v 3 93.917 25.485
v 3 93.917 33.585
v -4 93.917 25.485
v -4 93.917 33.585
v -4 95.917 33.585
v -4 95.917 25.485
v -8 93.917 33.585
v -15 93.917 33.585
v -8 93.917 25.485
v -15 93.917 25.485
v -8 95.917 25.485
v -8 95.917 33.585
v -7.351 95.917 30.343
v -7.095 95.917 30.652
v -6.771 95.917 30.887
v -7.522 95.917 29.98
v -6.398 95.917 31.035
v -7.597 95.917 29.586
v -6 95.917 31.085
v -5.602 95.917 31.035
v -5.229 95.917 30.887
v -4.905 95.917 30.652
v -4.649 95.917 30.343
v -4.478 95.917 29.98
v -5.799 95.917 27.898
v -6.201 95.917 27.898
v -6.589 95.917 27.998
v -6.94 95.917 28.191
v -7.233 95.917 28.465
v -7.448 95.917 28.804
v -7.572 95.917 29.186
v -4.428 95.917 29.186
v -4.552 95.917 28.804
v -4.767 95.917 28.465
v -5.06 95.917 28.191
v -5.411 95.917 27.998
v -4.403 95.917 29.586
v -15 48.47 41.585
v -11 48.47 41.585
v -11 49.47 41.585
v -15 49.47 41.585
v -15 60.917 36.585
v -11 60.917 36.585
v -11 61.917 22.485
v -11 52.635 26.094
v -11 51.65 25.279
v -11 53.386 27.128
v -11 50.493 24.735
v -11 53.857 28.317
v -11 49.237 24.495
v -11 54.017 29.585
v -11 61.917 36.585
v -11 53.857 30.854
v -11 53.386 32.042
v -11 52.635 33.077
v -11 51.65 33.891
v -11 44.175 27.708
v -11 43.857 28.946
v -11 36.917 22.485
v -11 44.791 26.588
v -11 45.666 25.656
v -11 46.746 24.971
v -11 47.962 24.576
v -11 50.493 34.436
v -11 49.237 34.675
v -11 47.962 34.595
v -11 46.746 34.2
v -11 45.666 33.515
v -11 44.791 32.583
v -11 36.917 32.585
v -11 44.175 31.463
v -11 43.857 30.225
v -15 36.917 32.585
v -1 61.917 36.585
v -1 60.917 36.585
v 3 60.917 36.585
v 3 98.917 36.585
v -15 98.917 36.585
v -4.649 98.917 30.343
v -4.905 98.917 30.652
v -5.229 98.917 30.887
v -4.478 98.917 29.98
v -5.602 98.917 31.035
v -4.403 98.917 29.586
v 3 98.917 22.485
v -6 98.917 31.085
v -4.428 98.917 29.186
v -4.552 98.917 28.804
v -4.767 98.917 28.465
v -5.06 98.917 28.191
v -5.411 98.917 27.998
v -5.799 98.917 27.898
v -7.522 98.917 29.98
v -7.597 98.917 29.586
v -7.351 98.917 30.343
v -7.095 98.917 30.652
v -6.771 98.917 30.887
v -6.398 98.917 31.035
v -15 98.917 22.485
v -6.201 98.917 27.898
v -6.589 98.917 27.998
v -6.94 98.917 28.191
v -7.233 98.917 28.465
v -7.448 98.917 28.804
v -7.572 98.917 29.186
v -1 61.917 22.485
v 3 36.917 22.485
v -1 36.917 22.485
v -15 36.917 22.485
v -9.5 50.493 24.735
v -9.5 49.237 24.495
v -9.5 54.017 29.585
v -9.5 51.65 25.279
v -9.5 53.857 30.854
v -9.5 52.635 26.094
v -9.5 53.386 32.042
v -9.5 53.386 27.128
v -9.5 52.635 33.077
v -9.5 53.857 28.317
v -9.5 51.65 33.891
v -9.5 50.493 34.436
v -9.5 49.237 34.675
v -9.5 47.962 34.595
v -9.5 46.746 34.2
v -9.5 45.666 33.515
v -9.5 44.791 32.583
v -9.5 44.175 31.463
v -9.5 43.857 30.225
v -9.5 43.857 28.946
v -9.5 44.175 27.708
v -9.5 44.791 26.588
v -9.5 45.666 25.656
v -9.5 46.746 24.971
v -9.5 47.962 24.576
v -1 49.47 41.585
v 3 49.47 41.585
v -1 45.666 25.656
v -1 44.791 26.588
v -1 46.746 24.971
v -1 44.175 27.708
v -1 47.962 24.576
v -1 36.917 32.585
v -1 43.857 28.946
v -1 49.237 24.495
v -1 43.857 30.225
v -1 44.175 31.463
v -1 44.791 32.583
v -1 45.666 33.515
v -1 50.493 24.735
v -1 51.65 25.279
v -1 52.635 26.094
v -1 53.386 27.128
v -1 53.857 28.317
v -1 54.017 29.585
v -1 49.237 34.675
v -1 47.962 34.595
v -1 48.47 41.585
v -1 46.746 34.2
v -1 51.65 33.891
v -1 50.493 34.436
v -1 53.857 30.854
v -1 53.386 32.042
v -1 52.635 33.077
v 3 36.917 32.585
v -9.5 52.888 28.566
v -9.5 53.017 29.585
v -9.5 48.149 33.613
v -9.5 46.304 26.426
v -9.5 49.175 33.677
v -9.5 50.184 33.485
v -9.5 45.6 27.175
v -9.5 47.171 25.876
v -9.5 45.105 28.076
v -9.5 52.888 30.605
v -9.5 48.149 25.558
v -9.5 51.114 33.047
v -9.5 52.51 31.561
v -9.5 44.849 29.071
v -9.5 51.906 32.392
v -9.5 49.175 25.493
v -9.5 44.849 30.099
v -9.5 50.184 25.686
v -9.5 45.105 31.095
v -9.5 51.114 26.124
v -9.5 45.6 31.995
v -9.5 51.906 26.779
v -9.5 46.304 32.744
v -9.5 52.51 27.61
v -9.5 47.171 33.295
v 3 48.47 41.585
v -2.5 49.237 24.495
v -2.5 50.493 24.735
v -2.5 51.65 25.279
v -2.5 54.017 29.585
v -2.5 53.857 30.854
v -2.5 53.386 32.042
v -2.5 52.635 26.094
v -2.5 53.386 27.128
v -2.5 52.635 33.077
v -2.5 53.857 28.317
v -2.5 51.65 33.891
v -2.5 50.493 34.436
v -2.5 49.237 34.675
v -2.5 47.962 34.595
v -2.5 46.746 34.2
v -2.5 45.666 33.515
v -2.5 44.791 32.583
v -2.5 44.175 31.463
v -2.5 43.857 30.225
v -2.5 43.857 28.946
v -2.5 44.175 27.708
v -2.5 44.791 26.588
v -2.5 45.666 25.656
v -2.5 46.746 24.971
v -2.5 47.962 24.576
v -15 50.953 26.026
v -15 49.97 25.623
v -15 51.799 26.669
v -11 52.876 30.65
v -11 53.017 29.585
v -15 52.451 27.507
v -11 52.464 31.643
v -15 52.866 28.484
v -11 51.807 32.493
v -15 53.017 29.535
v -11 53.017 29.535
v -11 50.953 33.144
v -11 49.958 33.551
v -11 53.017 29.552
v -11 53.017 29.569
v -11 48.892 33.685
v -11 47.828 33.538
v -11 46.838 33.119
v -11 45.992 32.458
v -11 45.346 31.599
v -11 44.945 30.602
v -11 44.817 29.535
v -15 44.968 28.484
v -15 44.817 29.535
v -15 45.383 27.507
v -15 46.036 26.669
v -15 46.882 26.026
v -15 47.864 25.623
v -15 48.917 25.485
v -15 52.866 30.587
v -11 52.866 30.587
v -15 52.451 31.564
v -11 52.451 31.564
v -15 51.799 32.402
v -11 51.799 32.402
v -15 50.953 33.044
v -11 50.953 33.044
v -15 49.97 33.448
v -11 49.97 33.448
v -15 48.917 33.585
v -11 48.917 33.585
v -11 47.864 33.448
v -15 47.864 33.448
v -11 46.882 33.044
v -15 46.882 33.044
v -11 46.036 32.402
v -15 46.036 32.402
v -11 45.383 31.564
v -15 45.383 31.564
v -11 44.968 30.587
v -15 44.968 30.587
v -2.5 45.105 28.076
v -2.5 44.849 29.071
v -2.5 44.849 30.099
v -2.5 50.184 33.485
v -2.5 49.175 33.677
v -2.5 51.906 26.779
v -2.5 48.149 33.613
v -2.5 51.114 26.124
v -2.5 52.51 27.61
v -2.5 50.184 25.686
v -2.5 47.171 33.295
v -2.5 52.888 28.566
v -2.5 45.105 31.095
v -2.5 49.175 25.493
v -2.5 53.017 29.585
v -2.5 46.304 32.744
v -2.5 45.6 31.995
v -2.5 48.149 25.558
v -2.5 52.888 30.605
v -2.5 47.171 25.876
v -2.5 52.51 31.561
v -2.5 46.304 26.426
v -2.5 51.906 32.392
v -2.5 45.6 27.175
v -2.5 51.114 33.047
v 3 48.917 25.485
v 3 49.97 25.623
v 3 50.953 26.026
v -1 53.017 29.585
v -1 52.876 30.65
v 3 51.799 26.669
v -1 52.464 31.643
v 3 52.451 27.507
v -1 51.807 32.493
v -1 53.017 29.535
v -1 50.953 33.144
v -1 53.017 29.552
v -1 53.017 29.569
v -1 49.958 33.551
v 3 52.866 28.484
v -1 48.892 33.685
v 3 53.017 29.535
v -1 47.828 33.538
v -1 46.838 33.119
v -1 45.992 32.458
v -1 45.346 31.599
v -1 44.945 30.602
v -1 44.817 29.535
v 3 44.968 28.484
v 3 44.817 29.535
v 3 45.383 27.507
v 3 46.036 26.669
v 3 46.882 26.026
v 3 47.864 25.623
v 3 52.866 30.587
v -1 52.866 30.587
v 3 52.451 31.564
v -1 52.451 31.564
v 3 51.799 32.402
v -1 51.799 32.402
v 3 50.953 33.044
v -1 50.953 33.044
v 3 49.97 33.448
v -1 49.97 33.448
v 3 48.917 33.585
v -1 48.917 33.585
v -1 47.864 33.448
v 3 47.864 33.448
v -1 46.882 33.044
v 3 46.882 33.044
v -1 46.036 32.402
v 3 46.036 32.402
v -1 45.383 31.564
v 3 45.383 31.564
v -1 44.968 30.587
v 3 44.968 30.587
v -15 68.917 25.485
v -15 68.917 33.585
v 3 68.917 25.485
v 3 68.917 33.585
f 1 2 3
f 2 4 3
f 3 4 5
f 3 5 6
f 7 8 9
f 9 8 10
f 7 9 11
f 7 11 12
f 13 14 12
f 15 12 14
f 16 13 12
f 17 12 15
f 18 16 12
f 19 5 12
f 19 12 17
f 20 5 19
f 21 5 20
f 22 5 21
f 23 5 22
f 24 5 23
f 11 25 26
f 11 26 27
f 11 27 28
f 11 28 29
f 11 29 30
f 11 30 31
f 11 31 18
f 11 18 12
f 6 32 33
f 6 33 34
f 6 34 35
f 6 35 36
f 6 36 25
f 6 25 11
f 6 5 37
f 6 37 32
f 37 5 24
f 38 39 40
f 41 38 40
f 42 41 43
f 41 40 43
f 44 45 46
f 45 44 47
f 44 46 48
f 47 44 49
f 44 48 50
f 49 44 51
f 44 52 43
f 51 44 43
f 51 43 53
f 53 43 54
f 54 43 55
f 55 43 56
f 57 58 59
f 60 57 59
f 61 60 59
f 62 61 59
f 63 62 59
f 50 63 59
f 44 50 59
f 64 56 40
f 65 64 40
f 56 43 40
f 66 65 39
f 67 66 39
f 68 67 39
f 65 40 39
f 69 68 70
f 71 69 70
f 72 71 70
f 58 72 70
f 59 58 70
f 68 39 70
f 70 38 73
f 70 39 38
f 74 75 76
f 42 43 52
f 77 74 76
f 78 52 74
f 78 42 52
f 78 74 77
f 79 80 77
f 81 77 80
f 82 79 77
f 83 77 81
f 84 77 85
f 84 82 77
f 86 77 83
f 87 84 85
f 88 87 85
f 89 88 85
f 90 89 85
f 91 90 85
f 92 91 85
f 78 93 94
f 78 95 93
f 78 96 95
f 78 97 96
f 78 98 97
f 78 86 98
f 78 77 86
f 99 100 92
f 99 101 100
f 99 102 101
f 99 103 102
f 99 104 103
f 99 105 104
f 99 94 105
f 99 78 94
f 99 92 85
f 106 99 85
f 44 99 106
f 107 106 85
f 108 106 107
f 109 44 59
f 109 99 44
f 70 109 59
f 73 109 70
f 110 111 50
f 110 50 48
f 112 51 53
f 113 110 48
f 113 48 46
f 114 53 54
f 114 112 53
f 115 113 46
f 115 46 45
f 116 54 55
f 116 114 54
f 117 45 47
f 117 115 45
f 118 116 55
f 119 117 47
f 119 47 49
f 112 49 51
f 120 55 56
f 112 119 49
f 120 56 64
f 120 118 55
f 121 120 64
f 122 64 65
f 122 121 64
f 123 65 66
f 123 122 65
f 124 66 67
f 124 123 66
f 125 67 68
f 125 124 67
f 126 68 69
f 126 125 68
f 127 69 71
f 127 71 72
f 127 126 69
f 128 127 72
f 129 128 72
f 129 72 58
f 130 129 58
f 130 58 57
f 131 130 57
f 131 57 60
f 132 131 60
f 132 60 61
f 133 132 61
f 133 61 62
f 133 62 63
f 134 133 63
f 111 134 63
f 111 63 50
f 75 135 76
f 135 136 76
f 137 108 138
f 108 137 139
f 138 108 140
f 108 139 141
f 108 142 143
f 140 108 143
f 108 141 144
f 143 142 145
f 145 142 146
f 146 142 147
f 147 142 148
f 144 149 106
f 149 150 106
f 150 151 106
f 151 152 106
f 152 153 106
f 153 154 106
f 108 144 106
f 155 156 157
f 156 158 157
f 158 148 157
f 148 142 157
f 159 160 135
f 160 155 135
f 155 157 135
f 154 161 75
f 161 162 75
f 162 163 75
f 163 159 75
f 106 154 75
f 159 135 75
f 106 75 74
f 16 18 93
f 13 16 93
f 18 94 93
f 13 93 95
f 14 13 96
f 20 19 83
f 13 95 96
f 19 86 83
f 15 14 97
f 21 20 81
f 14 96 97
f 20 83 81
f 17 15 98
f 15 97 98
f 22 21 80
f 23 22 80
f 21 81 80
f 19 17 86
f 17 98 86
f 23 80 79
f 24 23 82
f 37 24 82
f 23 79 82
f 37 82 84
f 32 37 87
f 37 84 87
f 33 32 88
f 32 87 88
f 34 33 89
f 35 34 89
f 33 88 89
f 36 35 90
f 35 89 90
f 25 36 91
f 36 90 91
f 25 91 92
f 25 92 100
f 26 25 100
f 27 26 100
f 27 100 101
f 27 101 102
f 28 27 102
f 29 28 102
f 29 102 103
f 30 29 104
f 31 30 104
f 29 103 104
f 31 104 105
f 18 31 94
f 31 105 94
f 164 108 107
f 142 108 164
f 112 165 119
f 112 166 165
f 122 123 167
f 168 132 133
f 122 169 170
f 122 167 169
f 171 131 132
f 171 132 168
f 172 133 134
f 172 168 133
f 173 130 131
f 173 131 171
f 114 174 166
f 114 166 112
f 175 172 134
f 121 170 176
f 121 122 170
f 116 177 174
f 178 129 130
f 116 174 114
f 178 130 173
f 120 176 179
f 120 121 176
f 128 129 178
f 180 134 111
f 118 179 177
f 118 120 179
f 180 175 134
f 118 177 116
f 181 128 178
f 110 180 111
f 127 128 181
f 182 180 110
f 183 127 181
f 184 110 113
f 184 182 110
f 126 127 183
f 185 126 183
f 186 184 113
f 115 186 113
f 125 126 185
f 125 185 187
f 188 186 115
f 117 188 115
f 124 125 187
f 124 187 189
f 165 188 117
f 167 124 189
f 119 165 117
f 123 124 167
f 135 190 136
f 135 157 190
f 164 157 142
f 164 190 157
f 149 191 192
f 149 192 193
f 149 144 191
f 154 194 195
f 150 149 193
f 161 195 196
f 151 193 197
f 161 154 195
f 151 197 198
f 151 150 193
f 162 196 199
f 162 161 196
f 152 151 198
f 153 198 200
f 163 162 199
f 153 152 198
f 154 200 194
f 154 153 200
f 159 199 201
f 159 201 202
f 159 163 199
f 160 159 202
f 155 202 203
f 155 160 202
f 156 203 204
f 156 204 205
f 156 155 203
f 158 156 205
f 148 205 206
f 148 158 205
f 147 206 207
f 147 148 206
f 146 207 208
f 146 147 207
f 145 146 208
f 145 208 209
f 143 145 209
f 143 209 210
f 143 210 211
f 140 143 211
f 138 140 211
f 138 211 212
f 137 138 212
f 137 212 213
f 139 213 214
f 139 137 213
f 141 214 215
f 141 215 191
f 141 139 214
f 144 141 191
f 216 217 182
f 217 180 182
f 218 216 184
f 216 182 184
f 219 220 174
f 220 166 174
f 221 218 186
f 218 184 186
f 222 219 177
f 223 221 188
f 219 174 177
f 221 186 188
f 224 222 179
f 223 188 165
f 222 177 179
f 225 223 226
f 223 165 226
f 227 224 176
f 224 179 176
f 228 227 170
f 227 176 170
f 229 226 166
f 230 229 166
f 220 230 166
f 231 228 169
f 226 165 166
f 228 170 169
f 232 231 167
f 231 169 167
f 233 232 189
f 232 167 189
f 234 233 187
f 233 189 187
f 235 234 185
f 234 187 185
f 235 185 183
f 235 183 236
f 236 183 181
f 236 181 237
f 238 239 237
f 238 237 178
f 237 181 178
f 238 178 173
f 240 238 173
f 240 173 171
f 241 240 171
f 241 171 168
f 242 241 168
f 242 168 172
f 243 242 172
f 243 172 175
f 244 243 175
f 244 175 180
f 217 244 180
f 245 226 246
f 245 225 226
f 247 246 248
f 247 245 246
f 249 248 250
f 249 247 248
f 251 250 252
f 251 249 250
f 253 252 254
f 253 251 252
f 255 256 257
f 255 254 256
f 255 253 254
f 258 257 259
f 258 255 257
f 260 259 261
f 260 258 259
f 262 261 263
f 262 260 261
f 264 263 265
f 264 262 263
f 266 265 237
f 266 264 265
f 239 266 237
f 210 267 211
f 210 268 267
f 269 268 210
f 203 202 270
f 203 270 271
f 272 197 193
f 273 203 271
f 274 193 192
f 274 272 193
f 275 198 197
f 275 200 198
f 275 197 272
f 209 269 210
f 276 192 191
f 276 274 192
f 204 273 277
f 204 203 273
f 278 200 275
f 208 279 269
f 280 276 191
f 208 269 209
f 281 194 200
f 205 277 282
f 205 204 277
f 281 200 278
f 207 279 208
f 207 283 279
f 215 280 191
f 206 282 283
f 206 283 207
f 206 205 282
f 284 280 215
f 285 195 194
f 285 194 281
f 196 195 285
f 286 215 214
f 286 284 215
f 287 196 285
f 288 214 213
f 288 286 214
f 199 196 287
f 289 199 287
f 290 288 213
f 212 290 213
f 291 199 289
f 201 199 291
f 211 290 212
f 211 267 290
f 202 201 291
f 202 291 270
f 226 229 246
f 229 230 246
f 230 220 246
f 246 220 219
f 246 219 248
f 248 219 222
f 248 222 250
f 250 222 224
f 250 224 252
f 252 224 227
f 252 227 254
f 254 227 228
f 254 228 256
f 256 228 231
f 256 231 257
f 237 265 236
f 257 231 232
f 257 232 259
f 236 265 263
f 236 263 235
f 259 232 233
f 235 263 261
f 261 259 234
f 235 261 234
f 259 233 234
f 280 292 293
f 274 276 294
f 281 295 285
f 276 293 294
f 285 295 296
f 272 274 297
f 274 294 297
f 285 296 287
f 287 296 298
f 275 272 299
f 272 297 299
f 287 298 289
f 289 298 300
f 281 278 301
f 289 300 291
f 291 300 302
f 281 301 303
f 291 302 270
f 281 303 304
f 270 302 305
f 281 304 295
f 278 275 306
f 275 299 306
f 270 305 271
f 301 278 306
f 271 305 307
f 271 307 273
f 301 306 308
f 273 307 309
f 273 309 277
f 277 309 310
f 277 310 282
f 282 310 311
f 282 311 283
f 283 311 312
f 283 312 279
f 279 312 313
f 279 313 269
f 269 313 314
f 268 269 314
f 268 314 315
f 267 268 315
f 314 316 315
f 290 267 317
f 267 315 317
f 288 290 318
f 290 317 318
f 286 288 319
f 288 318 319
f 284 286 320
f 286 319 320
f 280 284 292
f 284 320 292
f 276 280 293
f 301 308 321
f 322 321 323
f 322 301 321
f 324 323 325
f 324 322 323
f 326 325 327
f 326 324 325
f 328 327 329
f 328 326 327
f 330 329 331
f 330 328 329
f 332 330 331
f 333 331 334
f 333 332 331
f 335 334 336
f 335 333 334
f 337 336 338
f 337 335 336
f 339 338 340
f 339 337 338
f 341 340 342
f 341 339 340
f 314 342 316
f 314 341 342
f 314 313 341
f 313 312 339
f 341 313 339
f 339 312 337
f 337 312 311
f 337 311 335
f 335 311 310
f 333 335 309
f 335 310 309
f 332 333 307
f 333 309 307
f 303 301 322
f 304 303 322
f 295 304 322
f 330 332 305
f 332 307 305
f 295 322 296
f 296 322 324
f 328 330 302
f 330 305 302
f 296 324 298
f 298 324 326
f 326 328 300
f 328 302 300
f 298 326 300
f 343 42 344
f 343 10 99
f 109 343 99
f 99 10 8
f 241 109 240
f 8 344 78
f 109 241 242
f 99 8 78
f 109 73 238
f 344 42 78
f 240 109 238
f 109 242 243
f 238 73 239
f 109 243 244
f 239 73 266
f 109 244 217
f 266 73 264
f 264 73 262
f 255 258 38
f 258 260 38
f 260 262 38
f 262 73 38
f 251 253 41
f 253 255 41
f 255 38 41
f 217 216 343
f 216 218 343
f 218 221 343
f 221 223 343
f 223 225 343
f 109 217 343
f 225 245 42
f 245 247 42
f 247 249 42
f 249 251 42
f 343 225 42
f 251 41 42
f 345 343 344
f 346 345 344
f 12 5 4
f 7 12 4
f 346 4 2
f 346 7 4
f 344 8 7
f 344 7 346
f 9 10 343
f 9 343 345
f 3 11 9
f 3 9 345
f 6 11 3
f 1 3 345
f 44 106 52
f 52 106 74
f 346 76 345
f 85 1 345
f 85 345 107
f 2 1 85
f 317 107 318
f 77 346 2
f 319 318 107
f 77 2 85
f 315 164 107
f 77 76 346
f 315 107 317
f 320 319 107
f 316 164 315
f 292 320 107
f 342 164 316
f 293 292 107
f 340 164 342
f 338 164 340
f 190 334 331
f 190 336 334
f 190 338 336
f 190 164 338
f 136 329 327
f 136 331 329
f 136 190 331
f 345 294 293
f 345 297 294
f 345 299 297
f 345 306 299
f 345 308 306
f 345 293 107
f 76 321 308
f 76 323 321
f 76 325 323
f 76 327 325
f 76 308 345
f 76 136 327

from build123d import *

# Parameters (mm, degrees)
SKETCH_R        = 4.1
SKETCH_W        = 25
SKETCH_H        = 8.1
PAD_DEPTH       = 18
SKETCH001_W     = 25
SKETCH001_H     = 10
POCKET_DEPTH    = 25
SKETCH002_R     = 5.1
SKETCH002_R_2   = 4.1
PAD001_DEPTH    = 18
SKETCH003_W     = 24
SKETCH003_H     = 7
POCKET001_DEPTH = 25
SKETCH004_R     = 1.6
POCKET002_DEPTH = 5
SKETCH005_W     = 8.1
SKETCH005_H     = 4
POCKET003_DEPTH = 2
POCKET004_DEPTH = 25


with BuildPart() as part:
    # Sketch → Pad (new body)
    with BuildSketch(Plane(origin=(-15, 105, 17), x_dir=(0, 1, 0), z_dir=(1, 0, 0))):
        Polygon((-68.082832, 24.585315), (-44.082832, 24.585315), (-44.082832, 19.585315), (-6.082832, 19.585315), (-6.082832, 5.485315), (-68.082832, 5.485315), align=None)
        with Locations((-56.082832, 12.485315)):
            Circle(SKETCH_R, mode=Mode.SUBTRACT)
        with Locations((-23.582832, 12.535315)):
            Rectangle(SKETCH_W, SKETCH_H, mode=Mode.SUBTRACT)
    extrude(amount=PAD_DEPTH)

    # Sketch001 → Pocket (cut)
    with BuildSketch(Plane(origin=(-15, 105, 41.585315), x_dir=(0, -1, 0), z_dir=(0, 0, 1))):
        with Locations((55.582832, 9)):
            Rectangle(SKETCH001_W, SKETCH001_H)
    extrude(amount=-POCKET_DEPTH, mode=Mode.SUBTRACT)

    # Sketch002 → Pad001 (new body)
    with BuildSketch(Plane(origin=(3, 105, 17), x_dir=(0, 1, 0), z_dir=(1, 0, 0))):
        with Locations((-56.082832, 12.585315)):
            Circle(SKETCH002_R)
        with Locations((-56.082832, 12.585315)):
            Circle(SKETCH002_R_2, mode=Mode.SUBTRACT)
    extrude(amount=-PAD001_DEPTH)

    # Sketch003 → Pocket001 (cut)
    with BuildSketch(Plane(origin=(-15, 105, 36.585315), x_dir=(0, -1, 0), z_dir=(0, 0, 1))):
        with Locations((55.082832, 9)):
            Rectangle(SKETCH003_W, SKETCH003_H)
    extrude(amount=-POCKET001_DEPTH, mode=Mode.SUBTRACT)

    # Sketch004 → Pocket002 (cut)
    with BuildSketch(Plane(origin=(-15, 98.917168, 17), x_dir=(0, 0, 1), z_dir=(0, 1, 0))):
        with Locations((12.485315, 9)):
            Circle(SKETCH004_R)
    extrude(amount=-POCKET002_DEPTH, mode=Mode.SUBTRACT)

    # Sketch005 → Pocket003 (cut)
    with BuildSketch(Plane(origin=(-15, 93.917168, 17), x_dir=(0, 0, -1), z_dir=(0, -1, 0))):
        with Locations((-12.535315, 9)):
            Rectangle(SKETCH005_W, SKETCH005_H)
    extrude(amount=-POCKET003_DEPTH, mode=Mode.SUBTRACT)

    # Sketch006 → Pocket004 (cut)
    with BuildSketch(Plane(origin=(3, 105, 17), x_dir=(0, 1, 0), z_dir=(1, 0, 0))):
        Polygon((-55.529856, 24.585315), (-44.082832, 19.585315), (-44.082832, 24.585315), align=None)
        Polygon((-56.529856, 24.585315), (-68.082832, 15.585315), (-68.082832, 24.585315), align=None)
    extrude(amount=-POCKET004_DEPTH, mode=Mode.SUBTRACT)


solid = part.part
